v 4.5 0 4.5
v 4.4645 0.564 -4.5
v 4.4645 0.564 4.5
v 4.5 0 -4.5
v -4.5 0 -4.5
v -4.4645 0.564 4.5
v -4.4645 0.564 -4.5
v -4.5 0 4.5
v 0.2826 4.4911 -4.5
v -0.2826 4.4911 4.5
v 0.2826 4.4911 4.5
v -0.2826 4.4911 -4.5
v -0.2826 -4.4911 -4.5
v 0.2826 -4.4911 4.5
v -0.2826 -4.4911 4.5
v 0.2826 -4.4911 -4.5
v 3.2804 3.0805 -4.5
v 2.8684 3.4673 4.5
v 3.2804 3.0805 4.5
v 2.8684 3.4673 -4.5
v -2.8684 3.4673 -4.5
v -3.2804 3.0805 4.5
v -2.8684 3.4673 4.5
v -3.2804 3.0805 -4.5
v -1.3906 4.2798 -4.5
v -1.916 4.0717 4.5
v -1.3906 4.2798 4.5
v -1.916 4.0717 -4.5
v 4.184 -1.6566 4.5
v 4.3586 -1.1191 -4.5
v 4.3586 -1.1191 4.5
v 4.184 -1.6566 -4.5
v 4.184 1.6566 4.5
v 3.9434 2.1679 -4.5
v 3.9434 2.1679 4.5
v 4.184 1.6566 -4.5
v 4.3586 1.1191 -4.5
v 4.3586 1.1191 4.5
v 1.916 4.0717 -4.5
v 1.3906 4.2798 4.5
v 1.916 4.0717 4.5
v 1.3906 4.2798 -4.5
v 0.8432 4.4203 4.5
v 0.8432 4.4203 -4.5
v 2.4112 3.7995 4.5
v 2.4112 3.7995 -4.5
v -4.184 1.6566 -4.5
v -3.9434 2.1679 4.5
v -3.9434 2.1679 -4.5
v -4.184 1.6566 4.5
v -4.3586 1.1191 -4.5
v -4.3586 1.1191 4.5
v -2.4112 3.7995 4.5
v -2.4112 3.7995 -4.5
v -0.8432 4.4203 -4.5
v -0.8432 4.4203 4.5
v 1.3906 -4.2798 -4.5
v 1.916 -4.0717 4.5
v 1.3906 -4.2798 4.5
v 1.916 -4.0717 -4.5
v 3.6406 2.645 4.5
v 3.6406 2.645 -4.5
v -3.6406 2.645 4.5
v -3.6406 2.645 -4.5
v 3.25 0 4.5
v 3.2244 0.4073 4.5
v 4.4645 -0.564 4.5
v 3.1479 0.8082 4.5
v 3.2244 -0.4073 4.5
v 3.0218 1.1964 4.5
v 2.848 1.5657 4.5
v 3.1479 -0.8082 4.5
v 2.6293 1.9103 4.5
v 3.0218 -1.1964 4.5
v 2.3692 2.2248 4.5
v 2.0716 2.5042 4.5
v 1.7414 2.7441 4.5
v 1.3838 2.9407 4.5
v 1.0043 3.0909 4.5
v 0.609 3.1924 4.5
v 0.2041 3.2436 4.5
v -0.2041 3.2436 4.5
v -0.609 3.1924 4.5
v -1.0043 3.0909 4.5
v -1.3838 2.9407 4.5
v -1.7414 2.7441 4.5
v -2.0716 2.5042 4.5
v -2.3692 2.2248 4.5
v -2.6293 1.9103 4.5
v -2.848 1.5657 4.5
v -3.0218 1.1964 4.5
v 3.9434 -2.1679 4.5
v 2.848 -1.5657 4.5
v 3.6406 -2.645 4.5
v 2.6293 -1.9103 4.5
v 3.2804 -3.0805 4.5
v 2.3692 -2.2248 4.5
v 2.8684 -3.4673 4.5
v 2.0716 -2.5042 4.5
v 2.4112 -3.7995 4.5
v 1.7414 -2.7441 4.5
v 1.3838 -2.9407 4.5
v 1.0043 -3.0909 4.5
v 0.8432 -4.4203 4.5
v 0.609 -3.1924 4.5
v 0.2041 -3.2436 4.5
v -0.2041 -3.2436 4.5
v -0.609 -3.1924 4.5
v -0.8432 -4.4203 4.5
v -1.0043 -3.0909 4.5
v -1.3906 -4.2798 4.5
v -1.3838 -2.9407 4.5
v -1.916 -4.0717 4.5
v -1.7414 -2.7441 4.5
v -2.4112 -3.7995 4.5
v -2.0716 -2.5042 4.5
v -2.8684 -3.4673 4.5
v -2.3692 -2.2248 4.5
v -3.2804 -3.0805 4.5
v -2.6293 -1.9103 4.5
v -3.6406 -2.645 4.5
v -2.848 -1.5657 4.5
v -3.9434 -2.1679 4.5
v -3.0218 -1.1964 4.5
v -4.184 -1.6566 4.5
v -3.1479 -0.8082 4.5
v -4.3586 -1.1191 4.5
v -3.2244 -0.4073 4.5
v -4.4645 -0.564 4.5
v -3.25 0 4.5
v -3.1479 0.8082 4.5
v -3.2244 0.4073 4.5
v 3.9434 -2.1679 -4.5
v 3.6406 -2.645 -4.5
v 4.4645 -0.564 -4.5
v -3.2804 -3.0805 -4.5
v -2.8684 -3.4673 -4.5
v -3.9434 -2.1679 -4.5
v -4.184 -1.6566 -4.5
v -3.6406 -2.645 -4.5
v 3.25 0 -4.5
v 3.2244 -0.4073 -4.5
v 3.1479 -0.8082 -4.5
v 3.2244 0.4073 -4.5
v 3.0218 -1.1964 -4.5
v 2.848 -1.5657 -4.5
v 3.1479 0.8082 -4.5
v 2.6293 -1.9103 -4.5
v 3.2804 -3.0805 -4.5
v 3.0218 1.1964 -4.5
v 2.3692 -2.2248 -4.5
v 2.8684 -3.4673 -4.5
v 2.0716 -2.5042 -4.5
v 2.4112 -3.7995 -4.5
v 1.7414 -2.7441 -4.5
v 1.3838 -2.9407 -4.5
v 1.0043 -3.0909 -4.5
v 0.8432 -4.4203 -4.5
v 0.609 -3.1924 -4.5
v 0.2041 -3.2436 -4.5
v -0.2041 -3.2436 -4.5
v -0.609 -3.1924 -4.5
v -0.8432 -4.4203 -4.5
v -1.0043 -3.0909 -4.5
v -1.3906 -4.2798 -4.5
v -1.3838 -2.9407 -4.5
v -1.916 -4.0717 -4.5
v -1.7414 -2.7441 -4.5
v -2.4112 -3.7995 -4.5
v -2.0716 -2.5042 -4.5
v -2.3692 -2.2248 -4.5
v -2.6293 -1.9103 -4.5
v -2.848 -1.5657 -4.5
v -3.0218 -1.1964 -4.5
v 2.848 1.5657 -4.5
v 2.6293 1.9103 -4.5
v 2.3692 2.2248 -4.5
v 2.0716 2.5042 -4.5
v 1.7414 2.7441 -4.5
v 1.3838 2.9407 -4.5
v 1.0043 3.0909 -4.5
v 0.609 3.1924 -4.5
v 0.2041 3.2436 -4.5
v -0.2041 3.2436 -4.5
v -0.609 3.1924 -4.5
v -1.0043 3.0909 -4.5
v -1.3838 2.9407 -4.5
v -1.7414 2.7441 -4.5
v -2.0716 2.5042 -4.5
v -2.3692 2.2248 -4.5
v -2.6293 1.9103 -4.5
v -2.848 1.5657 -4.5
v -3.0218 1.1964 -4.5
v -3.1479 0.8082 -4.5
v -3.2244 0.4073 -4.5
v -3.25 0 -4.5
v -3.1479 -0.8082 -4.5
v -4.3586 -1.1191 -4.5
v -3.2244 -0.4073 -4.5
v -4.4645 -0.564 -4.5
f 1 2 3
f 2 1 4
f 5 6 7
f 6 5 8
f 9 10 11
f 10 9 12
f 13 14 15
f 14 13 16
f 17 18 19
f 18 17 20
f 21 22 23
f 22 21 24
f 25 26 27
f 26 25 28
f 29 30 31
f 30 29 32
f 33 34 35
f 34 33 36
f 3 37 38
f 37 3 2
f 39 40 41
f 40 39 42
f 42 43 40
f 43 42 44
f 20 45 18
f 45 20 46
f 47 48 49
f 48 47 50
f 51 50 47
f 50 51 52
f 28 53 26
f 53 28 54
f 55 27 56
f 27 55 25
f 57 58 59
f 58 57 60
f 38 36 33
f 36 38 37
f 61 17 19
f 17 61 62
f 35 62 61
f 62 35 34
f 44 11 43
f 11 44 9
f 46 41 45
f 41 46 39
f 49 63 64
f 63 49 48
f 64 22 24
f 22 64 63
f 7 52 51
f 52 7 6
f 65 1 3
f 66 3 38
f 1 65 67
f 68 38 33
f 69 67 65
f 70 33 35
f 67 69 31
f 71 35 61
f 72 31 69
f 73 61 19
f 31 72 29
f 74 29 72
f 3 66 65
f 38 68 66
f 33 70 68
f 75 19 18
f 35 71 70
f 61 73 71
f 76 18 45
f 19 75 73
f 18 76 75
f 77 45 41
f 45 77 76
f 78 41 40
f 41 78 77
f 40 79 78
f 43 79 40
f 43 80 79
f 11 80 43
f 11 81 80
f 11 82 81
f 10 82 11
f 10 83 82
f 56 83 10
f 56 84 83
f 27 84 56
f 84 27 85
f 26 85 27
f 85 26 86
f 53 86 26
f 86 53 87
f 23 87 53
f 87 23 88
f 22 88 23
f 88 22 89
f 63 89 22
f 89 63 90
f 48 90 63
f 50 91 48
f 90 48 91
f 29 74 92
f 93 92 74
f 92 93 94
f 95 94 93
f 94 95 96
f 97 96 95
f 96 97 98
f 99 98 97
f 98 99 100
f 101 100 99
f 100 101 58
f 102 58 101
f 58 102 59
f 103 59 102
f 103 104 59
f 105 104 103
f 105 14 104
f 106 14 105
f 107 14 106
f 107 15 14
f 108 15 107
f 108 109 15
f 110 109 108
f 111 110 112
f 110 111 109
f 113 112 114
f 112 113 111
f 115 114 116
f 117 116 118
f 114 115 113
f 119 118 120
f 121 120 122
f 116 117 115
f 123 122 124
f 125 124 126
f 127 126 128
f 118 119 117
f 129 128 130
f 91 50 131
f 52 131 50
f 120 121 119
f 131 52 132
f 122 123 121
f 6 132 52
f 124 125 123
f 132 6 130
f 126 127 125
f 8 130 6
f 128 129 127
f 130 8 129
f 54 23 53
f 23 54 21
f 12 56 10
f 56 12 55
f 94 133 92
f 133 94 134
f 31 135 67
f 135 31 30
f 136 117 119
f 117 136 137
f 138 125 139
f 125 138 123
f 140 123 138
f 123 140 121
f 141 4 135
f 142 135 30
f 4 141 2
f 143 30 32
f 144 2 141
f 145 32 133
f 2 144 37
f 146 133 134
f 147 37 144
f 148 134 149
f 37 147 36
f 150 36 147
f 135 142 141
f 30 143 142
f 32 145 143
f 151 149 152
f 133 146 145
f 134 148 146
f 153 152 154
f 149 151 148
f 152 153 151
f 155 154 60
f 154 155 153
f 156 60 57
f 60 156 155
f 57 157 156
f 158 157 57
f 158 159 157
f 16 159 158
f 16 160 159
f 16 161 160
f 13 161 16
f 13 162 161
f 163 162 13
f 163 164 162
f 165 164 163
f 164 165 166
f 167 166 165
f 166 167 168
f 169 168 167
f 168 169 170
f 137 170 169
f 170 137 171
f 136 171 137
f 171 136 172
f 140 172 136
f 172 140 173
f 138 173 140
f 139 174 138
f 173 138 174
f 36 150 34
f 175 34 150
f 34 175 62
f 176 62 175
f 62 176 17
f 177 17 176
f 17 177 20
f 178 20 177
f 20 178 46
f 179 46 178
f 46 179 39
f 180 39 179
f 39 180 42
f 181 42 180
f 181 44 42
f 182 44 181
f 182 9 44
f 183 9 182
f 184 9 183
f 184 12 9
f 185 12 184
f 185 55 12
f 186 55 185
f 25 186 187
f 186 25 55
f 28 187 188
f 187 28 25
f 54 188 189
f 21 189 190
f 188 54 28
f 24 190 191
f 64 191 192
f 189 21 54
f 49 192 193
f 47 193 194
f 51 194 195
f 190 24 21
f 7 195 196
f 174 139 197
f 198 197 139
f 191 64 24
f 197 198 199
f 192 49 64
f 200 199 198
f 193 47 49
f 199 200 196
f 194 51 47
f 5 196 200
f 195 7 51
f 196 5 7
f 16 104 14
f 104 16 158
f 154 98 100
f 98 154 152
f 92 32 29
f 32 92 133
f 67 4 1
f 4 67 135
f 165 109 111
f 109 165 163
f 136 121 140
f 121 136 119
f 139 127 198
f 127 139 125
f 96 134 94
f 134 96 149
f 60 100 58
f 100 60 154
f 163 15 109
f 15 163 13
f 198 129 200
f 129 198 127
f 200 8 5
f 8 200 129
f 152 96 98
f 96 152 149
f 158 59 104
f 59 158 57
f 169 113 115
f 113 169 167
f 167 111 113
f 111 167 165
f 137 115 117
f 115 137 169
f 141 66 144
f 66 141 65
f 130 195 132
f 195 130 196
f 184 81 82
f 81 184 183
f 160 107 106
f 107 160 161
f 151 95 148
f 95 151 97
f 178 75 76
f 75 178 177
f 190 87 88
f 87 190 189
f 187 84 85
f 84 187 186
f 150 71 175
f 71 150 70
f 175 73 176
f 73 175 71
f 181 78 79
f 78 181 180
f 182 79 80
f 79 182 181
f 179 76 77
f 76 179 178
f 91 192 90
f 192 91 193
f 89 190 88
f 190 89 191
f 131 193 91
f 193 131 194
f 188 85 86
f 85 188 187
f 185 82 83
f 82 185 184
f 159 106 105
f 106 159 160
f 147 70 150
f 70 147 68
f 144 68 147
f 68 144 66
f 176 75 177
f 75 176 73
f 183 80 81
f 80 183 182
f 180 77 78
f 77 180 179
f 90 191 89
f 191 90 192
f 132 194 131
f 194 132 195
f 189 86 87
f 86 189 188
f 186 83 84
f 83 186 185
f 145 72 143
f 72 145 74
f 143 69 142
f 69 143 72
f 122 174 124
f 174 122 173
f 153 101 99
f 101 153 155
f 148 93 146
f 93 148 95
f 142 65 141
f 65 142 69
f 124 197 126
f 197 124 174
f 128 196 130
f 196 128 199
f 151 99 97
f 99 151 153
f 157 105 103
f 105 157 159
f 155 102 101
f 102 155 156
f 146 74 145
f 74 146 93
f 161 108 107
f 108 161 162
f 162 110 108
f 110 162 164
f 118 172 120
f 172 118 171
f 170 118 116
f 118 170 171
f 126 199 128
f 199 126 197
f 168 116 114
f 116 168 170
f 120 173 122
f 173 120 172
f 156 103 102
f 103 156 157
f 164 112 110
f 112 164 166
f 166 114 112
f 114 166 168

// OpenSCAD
$fn = 50;


difference() {
	union() {
		translate(v = [0, 0, -4.5000000000]) {
			cylinder(h = 9, r = 4.5000000000);
		}
	}
	union() {
		translate(v = [0, 0, -100.0000000000]) {
			cylinder(h = 200, r = 3.2500000000);
		}
	}
}
